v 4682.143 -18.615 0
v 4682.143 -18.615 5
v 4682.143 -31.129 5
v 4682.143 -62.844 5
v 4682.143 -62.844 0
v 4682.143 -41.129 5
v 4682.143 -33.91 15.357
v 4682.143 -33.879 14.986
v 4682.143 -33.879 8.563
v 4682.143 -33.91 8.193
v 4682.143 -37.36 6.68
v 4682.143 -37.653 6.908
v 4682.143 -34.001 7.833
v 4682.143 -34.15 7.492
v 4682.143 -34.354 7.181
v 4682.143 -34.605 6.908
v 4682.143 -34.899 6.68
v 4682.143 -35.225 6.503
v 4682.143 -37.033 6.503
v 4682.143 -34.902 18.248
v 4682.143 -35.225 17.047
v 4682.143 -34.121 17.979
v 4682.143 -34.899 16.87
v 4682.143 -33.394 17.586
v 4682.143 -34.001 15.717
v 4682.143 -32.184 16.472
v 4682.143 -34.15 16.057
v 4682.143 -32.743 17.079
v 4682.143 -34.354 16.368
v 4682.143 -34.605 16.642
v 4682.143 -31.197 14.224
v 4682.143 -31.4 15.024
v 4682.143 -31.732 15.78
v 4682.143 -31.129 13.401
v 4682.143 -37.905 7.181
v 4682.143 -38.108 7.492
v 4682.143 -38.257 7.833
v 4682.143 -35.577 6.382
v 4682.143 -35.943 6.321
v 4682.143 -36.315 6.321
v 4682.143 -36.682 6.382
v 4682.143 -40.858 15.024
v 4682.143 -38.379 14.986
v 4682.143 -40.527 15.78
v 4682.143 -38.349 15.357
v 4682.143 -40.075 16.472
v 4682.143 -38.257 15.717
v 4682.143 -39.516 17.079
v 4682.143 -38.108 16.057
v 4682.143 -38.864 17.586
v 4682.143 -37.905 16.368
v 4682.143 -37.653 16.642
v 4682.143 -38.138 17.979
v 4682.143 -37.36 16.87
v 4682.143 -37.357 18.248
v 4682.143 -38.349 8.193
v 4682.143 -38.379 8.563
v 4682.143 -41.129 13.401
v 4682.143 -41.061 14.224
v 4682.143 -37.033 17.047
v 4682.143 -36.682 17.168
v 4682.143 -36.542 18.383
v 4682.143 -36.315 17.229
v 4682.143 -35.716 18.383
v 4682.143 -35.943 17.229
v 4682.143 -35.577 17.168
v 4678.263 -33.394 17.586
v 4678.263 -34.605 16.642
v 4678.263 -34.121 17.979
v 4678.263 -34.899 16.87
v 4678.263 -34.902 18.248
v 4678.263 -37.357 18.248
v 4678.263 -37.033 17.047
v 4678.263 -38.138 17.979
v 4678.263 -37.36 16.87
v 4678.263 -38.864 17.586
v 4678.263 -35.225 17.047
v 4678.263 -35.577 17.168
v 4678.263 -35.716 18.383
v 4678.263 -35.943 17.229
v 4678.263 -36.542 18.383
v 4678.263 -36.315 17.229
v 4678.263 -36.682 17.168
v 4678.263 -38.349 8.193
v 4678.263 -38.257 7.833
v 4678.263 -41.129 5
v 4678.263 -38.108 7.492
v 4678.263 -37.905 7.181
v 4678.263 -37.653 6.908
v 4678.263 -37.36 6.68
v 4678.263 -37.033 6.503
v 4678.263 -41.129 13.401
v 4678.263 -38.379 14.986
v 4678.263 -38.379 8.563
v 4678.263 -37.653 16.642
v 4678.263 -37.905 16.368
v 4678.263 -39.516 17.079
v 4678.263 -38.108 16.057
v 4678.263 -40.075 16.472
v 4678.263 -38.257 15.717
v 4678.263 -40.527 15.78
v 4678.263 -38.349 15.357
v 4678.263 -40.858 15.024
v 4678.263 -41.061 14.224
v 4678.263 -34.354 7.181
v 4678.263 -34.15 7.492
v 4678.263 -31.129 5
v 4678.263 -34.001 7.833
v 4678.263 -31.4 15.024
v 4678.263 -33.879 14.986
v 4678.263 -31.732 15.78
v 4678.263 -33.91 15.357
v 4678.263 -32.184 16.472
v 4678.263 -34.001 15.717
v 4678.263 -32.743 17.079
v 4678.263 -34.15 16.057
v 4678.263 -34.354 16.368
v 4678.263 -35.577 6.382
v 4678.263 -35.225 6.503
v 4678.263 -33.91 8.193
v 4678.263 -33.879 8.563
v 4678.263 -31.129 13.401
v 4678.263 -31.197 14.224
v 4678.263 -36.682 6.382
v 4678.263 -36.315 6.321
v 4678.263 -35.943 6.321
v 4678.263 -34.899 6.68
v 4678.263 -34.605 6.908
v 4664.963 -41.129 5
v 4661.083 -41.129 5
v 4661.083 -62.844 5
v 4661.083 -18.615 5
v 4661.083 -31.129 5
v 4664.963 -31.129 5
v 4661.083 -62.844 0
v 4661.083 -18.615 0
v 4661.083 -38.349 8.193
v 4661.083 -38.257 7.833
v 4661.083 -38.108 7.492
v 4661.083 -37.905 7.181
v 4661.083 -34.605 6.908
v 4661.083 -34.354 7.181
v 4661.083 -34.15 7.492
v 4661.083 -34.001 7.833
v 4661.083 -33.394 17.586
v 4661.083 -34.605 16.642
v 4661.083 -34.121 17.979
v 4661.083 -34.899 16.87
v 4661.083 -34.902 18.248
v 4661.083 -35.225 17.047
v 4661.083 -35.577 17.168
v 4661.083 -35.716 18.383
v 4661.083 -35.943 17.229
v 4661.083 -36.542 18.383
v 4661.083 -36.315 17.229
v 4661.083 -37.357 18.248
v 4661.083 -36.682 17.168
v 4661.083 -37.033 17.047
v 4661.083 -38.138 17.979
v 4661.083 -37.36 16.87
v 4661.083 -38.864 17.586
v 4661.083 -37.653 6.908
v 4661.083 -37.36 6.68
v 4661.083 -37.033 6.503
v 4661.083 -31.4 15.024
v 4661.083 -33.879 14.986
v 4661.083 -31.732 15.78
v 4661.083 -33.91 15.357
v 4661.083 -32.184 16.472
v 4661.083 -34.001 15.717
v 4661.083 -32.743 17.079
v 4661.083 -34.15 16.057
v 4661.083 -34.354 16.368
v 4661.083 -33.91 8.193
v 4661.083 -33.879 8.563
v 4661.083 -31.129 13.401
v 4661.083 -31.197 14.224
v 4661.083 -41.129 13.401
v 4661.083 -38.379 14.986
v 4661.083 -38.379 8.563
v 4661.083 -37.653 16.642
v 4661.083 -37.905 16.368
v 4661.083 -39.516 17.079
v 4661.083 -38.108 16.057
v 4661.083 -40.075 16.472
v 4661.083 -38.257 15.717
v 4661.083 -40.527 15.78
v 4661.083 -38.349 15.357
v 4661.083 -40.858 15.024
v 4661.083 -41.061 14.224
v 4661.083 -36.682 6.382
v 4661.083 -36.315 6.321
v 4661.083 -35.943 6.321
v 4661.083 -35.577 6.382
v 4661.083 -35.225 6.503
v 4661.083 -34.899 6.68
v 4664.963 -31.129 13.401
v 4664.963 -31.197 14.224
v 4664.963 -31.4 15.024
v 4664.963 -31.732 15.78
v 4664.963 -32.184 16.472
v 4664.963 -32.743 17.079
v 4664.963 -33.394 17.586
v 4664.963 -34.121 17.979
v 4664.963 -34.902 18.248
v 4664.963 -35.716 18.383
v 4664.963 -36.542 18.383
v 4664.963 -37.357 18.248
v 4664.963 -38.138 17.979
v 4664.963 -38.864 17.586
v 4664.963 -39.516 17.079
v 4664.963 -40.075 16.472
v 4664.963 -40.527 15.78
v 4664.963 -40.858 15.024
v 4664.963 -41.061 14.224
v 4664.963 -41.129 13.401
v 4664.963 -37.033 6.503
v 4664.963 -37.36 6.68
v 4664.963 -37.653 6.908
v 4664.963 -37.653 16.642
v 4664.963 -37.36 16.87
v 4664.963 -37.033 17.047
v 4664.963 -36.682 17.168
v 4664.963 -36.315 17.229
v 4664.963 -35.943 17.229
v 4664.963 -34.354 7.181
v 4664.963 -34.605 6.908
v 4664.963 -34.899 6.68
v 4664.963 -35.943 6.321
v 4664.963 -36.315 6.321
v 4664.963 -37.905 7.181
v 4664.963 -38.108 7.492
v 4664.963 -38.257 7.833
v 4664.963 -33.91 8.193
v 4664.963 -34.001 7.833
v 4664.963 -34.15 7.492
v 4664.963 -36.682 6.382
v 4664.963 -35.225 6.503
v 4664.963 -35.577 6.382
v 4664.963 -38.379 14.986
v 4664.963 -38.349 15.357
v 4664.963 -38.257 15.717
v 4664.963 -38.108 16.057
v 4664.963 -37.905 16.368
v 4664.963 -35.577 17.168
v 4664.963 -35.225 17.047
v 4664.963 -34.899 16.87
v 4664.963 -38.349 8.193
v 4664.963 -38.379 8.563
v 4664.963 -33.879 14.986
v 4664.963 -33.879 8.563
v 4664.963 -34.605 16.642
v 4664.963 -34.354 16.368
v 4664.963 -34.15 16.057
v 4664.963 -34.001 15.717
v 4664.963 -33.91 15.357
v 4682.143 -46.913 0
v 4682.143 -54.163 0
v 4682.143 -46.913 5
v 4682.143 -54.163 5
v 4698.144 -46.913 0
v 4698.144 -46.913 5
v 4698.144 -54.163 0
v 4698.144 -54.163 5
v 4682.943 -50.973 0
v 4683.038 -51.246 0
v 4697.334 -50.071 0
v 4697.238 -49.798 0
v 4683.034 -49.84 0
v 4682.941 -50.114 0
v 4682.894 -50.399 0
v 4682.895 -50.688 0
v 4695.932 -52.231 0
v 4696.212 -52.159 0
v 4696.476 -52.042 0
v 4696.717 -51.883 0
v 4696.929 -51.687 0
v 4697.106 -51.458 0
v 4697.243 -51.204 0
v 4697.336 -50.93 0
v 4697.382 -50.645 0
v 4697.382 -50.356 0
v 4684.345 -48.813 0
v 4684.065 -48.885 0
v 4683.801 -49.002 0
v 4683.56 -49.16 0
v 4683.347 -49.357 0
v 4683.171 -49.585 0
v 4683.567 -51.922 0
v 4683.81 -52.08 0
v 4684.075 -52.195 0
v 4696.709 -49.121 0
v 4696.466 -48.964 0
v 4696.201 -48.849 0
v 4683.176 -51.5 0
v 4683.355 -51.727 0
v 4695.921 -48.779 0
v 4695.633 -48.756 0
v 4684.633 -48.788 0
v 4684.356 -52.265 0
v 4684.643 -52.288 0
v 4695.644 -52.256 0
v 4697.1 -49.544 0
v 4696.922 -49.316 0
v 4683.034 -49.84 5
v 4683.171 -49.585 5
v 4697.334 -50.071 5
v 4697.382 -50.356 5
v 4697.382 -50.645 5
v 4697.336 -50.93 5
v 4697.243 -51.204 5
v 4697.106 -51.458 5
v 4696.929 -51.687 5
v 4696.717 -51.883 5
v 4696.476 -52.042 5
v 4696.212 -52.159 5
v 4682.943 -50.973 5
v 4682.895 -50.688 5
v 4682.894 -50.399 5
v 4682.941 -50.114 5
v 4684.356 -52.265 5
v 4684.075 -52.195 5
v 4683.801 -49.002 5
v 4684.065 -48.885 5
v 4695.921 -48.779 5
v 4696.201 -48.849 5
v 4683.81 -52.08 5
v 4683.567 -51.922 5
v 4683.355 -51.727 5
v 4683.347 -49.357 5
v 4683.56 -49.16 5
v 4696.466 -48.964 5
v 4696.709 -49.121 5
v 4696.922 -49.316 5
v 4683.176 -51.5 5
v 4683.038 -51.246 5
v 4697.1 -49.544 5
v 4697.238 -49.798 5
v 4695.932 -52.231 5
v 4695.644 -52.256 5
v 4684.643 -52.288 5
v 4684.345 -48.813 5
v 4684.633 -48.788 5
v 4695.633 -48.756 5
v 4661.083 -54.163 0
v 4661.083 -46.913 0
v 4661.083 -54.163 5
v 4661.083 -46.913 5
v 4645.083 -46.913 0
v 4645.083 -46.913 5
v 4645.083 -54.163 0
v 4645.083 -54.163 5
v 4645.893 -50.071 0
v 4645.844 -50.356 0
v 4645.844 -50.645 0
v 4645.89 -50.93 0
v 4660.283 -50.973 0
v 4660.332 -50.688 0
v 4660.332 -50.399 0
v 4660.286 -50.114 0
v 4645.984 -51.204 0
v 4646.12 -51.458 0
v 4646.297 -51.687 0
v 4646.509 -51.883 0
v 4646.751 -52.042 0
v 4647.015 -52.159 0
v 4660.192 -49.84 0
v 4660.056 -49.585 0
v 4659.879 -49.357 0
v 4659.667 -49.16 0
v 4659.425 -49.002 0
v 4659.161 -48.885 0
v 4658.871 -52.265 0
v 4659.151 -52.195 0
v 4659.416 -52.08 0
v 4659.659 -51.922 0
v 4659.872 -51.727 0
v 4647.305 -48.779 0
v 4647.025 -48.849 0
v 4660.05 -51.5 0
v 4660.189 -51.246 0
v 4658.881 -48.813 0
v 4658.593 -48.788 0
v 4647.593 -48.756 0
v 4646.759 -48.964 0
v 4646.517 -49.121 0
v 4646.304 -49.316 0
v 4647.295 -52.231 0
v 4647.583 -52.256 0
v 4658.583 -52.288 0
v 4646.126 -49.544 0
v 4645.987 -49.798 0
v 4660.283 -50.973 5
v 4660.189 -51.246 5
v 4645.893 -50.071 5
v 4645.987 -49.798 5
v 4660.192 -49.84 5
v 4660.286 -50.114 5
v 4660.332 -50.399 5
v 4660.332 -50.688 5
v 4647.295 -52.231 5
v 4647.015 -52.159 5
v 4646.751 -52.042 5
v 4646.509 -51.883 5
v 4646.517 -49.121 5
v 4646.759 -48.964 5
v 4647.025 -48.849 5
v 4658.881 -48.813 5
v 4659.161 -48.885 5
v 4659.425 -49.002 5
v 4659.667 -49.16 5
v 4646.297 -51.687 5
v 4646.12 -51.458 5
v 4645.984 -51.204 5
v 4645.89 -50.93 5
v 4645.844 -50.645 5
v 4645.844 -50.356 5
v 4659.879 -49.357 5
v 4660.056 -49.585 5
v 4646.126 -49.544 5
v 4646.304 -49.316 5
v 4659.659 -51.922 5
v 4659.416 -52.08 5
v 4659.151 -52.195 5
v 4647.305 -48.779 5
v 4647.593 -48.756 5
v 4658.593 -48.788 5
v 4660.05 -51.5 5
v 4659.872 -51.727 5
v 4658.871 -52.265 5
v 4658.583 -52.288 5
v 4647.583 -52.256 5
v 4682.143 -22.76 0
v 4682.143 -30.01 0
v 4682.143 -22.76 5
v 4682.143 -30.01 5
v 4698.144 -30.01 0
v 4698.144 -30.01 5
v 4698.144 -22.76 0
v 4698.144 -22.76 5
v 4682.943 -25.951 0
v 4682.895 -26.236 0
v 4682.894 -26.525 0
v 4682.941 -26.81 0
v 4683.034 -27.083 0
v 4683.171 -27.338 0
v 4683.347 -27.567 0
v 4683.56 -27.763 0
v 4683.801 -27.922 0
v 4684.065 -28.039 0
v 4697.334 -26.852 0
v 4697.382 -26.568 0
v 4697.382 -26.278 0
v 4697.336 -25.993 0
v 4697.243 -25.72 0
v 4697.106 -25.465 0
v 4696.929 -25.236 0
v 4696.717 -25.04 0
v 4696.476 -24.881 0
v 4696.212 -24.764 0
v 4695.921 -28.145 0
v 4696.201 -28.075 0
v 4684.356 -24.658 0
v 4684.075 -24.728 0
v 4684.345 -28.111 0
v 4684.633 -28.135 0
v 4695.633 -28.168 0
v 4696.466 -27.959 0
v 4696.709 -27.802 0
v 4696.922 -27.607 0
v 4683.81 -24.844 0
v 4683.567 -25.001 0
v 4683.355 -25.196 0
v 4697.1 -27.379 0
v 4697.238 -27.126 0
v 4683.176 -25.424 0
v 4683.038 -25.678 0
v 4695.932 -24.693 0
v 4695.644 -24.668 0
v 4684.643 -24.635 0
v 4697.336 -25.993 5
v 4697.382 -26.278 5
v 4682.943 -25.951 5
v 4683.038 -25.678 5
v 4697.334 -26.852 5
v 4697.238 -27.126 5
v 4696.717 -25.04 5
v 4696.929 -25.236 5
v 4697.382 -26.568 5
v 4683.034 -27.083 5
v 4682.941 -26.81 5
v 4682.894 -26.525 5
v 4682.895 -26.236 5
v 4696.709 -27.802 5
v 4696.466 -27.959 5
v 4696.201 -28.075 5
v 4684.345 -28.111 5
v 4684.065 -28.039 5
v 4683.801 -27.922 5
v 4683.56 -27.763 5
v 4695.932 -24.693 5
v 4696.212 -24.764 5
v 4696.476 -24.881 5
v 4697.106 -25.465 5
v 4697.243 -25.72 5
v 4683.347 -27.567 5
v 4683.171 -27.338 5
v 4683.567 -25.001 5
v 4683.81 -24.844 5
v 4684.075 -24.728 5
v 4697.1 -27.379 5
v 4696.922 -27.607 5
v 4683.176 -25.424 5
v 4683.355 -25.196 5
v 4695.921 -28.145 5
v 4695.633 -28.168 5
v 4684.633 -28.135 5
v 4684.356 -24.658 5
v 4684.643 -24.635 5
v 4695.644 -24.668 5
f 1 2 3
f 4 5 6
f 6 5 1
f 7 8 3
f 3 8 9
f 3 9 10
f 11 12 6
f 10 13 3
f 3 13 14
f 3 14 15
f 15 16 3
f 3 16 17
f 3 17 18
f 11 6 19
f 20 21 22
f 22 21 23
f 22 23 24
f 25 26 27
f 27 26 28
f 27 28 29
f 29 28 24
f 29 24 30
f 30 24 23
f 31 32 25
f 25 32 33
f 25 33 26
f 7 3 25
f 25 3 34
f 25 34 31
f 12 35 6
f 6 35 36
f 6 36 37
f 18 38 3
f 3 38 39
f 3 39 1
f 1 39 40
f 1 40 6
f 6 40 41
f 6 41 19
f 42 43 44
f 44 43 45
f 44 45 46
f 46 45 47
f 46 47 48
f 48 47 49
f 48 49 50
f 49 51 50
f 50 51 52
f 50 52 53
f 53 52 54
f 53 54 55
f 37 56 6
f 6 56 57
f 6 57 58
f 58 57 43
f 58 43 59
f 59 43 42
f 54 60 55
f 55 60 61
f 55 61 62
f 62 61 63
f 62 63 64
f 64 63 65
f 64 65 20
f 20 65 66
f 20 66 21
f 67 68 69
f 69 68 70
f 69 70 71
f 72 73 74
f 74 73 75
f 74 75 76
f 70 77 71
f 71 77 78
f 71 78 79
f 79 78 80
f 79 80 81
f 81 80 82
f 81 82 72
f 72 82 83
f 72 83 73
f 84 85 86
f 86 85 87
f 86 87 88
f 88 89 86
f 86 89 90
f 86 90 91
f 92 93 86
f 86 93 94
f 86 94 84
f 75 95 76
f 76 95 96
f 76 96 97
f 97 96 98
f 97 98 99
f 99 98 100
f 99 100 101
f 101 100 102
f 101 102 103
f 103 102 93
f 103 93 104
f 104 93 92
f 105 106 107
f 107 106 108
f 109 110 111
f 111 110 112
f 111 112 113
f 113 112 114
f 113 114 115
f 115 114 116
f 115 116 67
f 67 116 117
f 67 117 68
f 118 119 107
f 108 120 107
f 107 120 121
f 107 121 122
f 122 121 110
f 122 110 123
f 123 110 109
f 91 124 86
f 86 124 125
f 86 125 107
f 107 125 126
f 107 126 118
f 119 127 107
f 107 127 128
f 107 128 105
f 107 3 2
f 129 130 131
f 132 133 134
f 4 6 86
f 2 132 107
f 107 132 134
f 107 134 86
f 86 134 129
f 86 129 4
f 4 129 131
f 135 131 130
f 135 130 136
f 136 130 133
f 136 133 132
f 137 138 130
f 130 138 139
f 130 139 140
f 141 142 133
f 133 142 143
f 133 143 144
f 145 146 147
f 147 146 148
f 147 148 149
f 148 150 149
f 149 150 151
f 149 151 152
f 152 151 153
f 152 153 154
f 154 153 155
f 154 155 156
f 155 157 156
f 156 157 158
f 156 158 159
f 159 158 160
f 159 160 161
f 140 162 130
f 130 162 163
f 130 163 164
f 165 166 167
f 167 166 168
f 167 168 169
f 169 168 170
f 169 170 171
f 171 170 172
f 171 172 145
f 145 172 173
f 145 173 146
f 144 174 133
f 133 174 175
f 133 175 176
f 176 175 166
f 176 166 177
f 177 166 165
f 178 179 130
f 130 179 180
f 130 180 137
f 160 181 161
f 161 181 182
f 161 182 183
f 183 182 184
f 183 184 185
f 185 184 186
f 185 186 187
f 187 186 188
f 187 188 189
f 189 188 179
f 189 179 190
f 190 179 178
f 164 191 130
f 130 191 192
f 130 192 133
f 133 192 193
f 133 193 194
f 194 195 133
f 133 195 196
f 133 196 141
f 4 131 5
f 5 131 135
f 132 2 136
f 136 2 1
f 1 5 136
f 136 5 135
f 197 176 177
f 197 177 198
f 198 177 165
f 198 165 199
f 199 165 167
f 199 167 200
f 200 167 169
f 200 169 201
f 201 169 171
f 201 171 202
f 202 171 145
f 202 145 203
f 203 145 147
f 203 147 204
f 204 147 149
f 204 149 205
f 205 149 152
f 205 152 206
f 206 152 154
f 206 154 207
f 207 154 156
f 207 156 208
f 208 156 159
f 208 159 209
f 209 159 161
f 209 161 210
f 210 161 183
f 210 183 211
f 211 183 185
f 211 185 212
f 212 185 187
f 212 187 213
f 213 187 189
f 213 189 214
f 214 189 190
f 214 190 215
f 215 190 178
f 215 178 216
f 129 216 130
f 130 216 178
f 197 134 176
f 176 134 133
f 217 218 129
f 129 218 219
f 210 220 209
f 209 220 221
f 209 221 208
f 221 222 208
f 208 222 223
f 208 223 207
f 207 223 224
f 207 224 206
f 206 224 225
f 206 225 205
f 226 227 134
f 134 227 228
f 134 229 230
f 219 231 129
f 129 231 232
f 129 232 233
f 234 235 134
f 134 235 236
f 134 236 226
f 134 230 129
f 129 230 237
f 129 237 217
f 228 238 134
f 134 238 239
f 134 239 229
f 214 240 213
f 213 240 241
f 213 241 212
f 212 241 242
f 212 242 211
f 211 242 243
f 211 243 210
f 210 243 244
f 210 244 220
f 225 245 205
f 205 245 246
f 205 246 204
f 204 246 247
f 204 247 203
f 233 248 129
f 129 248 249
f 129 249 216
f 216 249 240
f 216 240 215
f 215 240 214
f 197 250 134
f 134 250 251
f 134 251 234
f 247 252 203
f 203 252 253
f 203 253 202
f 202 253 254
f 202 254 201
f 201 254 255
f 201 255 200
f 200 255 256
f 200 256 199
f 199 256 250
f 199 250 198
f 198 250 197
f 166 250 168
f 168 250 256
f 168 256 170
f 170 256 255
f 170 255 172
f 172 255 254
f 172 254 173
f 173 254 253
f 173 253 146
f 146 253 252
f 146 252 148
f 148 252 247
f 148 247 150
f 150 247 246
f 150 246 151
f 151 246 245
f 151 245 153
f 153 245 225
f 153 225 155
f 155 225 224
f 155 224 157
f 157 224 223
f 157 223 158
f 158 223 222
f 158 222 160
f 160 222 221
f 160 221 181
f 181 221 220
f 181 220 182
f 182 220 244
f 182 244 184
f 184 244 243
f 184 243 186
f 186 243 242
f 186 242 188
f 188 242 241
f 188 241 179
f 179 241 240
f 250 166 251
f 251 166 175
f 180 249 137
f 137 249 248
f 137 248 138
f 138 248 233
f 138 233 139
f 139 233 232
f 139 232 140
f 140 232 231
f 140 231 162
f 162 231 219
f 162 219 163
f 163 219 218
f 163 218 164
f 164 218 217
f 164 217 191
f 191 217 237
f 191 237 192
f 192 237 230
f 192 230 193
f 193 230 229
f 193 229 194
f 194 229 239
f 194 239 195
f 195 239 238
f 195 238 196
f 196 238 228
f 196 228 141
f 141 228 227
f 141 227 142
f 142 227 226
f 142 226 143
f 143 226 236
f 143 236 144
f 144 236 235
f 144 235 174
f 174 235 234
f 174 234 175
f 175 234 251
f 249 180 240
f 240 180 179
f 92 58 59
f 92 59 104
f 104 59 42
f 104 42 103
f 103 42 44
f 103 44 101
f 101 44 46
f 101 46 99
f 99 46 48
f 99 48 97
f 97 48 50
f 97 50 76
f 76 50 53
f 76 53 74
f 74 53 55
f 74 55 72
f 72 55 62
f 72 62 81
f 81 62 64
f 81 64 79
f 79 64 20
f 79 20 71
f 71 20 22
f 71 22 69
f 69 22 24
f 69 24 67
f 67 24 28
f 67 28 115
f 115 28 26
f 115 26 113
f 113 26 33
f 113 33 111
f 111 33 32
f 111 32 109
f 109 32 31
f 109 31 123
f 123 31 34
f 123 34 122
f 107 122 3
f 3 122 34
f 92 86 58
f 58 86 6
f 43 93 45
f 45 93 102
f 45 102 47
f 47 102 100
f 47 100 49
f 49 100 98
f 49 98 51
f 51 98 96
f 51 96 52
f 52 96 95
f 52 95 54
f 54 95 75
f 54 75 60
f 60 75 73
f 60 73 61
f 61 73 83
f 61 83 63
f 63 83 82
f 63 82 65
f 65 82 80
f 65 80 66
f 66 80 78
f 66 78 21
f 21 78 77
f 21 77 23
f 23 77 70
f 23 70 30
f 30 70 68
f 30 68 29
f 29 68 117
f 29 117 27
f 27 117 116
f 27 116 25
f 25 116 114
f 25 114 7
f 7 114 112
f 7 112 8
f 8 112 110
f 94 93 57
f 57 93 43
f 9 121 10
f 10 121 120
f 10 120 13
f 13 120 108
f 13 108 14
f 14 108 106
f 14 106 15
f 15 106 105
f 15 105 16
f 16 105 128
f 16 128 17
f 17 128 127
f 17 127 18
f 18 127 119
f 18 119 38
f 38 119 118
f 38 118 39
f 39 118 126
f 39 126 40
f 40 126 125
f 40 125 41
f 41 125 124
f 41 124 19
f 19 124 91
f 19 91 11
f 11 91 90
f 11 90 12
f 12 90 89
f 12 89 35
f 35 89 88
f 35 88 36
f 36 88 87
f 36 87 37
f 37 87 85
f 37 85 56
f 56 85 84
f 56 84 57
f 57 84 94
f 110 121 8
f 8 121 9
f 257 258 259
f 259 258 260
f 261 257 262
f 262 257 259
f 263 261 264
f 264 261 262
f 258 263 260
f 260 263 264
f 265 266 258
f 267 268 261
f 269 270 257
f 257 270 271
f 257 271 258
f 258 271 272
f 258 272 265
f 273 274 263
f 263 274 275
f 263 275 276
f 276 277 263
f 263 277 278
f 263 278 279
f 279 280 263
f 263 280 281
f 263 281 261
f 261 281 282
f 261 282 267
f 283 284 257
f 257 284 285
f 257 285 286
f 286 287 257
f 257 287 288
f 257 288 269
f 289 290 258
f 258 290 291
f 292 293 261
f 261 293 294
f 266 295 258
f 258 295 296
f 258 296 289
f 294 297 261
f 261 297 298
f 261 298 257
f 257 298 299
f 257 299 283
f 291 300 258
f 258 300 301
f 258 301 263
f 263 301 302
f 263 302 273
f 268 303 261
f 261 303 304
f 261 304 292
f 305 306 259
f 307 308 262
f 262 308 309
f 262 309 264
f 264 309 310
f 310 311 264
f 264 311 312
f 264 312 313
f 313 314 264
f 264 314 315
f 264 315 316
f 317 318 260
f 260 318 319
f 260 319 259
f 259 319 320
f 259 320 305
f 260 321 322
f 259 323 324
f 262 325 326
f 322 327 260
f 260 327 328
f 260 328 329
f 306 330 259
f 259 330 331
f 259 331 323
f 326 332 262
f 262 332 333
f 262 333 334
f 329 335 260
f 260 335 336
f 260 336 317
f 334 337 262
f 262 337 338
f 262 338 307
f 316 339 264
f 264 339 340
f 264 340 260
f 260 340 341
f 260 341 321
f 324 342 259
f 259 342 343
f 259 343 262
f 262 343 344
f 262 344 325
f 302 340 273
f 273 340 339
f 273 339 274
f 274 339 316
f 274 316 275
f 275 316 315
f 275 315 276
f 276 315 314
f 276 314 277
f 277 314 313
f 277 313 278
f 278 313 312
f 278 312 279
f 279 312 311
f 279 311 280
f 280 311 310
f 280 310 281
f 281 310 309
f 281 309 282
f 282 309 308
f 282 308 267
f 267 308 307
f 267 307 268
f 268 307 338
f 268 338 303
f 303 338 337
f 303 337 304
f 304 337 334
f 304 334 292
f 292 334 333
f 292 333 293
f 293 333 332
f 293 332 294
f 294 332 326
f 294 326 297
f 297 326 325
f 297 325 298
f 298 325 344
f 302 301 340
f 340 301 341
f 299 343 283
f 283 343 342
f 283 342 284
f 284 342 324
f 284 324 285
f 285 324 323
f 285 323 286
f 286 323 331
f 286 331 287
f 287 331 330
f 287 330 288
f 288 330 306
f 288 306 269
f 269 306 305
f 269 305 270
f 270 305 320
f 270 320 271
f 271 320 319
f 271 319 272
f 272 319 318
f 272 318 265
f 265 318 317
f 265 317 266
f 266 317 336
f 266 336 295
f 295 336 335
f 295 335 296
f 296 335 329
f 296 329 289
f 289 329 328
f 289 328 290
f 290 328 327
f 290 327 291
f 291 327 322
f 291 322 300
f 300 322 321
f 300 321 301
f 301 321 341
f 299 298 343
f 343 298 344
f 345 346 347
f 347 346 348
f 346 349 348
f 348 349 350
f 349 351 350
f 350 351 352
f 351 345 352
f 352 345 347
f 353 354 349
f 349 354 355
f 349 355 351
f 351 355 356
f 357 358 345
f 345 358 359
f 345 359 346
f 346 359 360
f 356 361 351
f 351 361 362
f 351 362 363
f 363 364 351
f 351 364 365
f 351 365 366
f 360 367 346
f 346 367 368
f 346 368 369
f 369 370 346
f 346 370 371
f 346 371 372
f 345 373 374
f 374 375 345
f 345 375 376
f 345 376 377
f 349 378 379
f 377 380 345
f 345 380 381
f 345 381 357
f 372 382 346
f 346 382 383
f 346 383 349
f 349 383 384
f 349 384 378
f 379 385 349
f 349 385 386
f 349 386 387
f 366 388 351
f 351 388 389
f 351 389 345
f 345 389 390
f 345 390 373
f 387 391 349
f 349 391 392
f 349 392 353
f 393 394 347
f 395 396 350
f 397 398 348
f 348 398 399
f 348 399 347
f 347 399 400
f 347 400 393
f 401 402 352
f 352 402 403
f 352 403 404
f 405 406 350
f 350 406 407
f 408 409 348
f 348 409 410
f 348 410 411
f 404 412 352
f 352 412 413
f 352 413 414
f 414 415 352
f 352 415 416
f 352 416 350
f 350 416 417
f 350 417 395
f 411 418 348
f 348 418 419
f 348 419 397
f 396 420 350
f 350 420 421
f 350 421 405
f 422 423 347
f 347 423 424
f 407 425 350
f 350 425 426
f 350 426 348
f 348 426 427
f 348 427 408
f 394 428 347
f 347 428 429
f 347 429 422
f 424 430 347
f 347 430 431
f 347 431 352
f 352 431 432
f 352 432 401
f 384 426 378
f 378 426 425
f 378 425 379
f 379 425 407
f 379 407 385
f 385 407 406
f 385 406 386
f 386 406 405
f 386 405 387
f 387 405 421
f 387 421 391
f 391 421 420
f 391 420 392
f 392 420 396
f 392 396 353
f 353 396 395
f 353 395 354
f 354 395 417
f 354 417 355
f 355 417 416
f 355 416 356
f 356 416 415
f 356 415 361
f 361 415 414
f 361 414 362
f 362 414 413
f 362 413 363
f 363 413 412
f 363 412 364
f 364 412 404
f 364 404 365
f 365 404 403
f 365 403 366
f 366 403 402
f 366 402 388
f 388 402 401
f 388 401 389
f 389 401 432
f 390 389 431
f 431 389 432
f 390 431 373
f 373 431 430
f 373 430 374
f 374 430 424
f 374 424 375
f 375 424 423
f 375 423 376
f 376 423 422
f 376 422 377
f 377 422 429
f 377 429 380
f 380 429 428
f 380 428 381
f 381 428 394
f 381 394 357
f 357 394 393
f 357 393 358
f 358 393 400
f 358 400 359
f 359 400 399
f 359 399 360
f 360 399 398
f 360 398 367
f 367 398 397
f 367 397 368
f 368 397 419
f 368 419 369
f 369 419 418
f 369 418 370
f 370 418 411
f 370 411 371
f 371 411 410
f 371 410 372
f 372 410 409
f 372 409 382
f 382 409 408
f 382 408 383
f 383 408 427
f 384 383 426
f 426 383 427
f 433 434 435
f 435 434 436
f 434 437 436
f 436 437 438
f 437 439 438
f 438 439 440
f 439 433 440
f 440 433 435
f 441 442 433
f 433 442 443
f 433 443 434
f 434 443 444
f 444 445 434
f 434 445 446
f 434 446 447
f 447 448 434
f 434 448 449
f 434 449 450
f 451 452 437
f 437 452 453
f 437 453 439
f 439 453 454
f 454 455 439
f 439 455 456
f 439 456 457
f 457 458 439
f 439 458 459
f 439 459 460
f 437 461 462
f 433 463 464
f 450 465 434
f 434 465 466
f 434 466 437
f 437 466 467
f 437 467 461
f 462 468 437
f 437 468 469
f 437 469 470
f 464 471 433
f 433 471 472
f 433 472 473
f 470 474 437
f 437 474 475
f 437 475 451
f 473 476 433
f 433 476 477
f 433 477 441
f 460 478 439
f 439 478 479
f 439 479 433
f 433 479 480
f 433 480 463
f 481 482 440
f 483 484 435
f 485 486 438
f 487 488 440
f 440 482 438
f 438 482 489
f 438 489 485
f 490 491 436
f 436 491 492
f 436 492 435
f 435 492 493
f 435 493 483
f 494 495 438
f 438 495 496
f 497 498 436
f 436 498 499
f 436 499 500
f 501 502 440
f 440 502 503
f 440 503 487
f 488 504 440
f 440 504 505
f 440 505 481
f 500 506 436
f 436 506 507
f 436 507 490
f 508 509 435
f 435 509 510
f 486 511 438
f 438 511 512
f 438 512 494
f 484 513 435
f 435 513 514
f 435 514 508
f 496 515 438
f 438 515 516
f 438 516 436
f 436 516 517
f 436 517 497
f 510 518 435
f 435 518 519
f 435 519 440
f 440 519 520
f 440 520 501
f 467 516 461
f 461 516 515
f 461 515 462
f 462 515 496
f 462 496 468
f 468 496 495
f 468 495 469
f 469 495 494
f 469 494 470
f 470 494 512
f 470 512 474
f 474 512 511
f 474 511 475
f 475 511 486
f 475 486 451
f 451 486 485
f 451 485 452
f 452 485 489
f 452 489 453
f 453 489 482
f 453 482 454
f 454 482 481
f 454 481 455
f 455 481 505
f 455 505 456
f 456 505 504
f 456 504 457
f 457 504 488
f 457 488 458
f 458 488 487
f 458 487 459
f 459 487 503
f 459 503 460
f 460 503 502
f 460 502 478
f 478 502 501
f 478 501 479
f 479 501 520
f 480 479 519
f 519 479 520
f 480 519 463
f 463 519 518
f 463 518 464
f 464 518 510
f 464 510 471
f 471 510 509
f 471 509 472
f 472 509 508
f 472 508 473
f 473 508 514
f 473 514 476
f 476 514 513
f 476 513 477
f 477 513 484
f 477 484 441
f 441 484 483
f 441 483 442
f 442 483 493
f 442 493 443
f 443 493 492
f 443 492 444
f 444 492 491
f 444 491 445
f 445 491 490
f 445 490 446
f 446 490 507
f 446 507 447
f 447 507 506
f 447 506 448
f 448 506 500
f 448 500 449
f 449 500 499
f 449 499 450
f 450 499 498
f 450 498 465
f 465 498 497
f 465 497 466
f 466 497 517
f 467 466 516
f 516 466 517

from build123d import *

# Parameters (mm, degrees)
SKETCH1_W           = 21.060518524
SKETCH1_H           = 44.229680595
BOSS_EXTRUDE1_DEPTH = 5
BOSS_EXTRUDE3_DEPTH = 3.8801
CUT_EXTRUDE1_DEPTH  = 8
SKETCH6_W           = 16
SKETCH6_H           = 7.25
BOSS_EXTRUDE4_DEPTH = 5
SKETCH11_W          = 16
SKETCH11_H          = 7.25
CUT_EXTRUDE2_DEPTH  = 5


with BuildPart() as part:
    # Sketch1 → Boss-Extrude1 (new body)
    with BuildSketch(Plane.XY):
        with Locations((4671.613089989, -40.729662913)):
            Rectangle(SKETCH1_W, SKETCH1_H)
    extrude(amount=BOSS_EXTRUDE1_DEPTH)

    # Sketch4 → Boss-Extrude3 (add)
    with BuildSketch(Plane.ZY.offset(-4661.082830727)):
        with BuildLine():
            Line((13.400549781, -31.129223835), (5, -31.129223835))
            Line((5, -31.129223835), (5, -41.129223835))
            Line((5, -41.129223835), (13.400549781, -41.129223835))
            ThreePointArc((13.400549781, -41.129223835), (18.400549781, -36.129223835), (13.400549781, -31.129223835))
        make_face()
    boss_extrude3 = extrude(amount=-BOSS_EXTRUDE3_DEPTH)

    # Sketch5 → Cut-Extrude1 (cut)
    with BuildSketch(Plane(origin=(4664.962930727, 0, 0), x_dir=(0, 0, -1), z_dir=(1, 0, 0))):
        with BuildLine():
            Line((-14.986353963, -33.879223835), (-8.563353453, -33.879223835))
            ThreePointArc((-8.563353453, -33.879223835), (-6.313353453, -36.129223835), (-8.563353453, -38.379223835))
            Line((-8.563353453, -38.379223835), (-14.986353963, -38.379223835))
            ThreePointArc((-14.986353963, -38.379223835), (-17.236353963, -36.129223835), (-14.986353963, -33.879223835))
        make_face()
    cut_extrude1 = extrude(amount=-CUT_EXTRUDE1_DEPTH, mode=Mode.SUBTRACT)

    # Mirror2: Boss-Extrude3, Cut-Extrude1 across plane
    add(boss_extrude3.mirror(Plane.ZY.offset(-4671.613089989)))
    add(cut_extrude1.mirror(Plane.ZY.offset(-4671.613089989)), mode=Mode.SUBTRACT)


with BuildPart() as body_2:
    # Sketch6 → Boss-Extrude4 (new body)
    with BuildSketch(Plane.XY.offset(5)):
        with Locations((4690.143349251, -50.538110101)):
            Rectangle(SKETCH6_W, SKETCH6_H)
        with BuildLine():
            Line((4695.643349251, -52.255506626), (4684.643397546, -52.288102418))
            ThreePointArc((4684.643397546, -52.288102418), (4682.888219535, -50.543295795), (4684.633026158, -48.788117784))
            Line((4684.633026158, -48.788117784), (4695.632977863, -48.755521993))
            ThreePointArc((4695.632977863, -48.755521993), (4697.388155873, -50.500328616), (4695.643349251, -52.255506626))
        make_face(mode=Mode.SUBTRACT)
    extrude(amount=-BOSS_EXTRUDE4_DEPTH)


with BuildPart() as body_3:
    # Mirror3: mirrored copy
    add(body_2.part.mirror(Plane.ZY.offset(-4671.613089989)))


with BuildPart() as body_4:
    # Mirror4: mirrored copy
    add(body_3.part.mirror(Plane(origin=(0, -38.461673776, 0), x_dir=(0, 0, 1), z_dir=(0, -1, 0))))

    # Sketch11 → Cut-Extrude2 (cut)
    with BuildSketch(Plane.XY.offset(5)):
        with Locations((4653.082830727, -26.385237452)):
            Rectangle(SKETCH11_W, SKETCH11_H)
    extrude(amount=-CUT_EXTRUDE2_DEPTH, mode=Mode.SUBTRACT)


with BuildPart() as body_5:
    # Mirror4 2: mirrored copy
    add(body_2.part.mirror(Plane(origin=(0, -38.461673776, 0), x_dir=(0, 0, 1), z_dir=(0, -1, 0))))


solid = Compound([part.part, body_2.part, body_3.part, body_5.part])
